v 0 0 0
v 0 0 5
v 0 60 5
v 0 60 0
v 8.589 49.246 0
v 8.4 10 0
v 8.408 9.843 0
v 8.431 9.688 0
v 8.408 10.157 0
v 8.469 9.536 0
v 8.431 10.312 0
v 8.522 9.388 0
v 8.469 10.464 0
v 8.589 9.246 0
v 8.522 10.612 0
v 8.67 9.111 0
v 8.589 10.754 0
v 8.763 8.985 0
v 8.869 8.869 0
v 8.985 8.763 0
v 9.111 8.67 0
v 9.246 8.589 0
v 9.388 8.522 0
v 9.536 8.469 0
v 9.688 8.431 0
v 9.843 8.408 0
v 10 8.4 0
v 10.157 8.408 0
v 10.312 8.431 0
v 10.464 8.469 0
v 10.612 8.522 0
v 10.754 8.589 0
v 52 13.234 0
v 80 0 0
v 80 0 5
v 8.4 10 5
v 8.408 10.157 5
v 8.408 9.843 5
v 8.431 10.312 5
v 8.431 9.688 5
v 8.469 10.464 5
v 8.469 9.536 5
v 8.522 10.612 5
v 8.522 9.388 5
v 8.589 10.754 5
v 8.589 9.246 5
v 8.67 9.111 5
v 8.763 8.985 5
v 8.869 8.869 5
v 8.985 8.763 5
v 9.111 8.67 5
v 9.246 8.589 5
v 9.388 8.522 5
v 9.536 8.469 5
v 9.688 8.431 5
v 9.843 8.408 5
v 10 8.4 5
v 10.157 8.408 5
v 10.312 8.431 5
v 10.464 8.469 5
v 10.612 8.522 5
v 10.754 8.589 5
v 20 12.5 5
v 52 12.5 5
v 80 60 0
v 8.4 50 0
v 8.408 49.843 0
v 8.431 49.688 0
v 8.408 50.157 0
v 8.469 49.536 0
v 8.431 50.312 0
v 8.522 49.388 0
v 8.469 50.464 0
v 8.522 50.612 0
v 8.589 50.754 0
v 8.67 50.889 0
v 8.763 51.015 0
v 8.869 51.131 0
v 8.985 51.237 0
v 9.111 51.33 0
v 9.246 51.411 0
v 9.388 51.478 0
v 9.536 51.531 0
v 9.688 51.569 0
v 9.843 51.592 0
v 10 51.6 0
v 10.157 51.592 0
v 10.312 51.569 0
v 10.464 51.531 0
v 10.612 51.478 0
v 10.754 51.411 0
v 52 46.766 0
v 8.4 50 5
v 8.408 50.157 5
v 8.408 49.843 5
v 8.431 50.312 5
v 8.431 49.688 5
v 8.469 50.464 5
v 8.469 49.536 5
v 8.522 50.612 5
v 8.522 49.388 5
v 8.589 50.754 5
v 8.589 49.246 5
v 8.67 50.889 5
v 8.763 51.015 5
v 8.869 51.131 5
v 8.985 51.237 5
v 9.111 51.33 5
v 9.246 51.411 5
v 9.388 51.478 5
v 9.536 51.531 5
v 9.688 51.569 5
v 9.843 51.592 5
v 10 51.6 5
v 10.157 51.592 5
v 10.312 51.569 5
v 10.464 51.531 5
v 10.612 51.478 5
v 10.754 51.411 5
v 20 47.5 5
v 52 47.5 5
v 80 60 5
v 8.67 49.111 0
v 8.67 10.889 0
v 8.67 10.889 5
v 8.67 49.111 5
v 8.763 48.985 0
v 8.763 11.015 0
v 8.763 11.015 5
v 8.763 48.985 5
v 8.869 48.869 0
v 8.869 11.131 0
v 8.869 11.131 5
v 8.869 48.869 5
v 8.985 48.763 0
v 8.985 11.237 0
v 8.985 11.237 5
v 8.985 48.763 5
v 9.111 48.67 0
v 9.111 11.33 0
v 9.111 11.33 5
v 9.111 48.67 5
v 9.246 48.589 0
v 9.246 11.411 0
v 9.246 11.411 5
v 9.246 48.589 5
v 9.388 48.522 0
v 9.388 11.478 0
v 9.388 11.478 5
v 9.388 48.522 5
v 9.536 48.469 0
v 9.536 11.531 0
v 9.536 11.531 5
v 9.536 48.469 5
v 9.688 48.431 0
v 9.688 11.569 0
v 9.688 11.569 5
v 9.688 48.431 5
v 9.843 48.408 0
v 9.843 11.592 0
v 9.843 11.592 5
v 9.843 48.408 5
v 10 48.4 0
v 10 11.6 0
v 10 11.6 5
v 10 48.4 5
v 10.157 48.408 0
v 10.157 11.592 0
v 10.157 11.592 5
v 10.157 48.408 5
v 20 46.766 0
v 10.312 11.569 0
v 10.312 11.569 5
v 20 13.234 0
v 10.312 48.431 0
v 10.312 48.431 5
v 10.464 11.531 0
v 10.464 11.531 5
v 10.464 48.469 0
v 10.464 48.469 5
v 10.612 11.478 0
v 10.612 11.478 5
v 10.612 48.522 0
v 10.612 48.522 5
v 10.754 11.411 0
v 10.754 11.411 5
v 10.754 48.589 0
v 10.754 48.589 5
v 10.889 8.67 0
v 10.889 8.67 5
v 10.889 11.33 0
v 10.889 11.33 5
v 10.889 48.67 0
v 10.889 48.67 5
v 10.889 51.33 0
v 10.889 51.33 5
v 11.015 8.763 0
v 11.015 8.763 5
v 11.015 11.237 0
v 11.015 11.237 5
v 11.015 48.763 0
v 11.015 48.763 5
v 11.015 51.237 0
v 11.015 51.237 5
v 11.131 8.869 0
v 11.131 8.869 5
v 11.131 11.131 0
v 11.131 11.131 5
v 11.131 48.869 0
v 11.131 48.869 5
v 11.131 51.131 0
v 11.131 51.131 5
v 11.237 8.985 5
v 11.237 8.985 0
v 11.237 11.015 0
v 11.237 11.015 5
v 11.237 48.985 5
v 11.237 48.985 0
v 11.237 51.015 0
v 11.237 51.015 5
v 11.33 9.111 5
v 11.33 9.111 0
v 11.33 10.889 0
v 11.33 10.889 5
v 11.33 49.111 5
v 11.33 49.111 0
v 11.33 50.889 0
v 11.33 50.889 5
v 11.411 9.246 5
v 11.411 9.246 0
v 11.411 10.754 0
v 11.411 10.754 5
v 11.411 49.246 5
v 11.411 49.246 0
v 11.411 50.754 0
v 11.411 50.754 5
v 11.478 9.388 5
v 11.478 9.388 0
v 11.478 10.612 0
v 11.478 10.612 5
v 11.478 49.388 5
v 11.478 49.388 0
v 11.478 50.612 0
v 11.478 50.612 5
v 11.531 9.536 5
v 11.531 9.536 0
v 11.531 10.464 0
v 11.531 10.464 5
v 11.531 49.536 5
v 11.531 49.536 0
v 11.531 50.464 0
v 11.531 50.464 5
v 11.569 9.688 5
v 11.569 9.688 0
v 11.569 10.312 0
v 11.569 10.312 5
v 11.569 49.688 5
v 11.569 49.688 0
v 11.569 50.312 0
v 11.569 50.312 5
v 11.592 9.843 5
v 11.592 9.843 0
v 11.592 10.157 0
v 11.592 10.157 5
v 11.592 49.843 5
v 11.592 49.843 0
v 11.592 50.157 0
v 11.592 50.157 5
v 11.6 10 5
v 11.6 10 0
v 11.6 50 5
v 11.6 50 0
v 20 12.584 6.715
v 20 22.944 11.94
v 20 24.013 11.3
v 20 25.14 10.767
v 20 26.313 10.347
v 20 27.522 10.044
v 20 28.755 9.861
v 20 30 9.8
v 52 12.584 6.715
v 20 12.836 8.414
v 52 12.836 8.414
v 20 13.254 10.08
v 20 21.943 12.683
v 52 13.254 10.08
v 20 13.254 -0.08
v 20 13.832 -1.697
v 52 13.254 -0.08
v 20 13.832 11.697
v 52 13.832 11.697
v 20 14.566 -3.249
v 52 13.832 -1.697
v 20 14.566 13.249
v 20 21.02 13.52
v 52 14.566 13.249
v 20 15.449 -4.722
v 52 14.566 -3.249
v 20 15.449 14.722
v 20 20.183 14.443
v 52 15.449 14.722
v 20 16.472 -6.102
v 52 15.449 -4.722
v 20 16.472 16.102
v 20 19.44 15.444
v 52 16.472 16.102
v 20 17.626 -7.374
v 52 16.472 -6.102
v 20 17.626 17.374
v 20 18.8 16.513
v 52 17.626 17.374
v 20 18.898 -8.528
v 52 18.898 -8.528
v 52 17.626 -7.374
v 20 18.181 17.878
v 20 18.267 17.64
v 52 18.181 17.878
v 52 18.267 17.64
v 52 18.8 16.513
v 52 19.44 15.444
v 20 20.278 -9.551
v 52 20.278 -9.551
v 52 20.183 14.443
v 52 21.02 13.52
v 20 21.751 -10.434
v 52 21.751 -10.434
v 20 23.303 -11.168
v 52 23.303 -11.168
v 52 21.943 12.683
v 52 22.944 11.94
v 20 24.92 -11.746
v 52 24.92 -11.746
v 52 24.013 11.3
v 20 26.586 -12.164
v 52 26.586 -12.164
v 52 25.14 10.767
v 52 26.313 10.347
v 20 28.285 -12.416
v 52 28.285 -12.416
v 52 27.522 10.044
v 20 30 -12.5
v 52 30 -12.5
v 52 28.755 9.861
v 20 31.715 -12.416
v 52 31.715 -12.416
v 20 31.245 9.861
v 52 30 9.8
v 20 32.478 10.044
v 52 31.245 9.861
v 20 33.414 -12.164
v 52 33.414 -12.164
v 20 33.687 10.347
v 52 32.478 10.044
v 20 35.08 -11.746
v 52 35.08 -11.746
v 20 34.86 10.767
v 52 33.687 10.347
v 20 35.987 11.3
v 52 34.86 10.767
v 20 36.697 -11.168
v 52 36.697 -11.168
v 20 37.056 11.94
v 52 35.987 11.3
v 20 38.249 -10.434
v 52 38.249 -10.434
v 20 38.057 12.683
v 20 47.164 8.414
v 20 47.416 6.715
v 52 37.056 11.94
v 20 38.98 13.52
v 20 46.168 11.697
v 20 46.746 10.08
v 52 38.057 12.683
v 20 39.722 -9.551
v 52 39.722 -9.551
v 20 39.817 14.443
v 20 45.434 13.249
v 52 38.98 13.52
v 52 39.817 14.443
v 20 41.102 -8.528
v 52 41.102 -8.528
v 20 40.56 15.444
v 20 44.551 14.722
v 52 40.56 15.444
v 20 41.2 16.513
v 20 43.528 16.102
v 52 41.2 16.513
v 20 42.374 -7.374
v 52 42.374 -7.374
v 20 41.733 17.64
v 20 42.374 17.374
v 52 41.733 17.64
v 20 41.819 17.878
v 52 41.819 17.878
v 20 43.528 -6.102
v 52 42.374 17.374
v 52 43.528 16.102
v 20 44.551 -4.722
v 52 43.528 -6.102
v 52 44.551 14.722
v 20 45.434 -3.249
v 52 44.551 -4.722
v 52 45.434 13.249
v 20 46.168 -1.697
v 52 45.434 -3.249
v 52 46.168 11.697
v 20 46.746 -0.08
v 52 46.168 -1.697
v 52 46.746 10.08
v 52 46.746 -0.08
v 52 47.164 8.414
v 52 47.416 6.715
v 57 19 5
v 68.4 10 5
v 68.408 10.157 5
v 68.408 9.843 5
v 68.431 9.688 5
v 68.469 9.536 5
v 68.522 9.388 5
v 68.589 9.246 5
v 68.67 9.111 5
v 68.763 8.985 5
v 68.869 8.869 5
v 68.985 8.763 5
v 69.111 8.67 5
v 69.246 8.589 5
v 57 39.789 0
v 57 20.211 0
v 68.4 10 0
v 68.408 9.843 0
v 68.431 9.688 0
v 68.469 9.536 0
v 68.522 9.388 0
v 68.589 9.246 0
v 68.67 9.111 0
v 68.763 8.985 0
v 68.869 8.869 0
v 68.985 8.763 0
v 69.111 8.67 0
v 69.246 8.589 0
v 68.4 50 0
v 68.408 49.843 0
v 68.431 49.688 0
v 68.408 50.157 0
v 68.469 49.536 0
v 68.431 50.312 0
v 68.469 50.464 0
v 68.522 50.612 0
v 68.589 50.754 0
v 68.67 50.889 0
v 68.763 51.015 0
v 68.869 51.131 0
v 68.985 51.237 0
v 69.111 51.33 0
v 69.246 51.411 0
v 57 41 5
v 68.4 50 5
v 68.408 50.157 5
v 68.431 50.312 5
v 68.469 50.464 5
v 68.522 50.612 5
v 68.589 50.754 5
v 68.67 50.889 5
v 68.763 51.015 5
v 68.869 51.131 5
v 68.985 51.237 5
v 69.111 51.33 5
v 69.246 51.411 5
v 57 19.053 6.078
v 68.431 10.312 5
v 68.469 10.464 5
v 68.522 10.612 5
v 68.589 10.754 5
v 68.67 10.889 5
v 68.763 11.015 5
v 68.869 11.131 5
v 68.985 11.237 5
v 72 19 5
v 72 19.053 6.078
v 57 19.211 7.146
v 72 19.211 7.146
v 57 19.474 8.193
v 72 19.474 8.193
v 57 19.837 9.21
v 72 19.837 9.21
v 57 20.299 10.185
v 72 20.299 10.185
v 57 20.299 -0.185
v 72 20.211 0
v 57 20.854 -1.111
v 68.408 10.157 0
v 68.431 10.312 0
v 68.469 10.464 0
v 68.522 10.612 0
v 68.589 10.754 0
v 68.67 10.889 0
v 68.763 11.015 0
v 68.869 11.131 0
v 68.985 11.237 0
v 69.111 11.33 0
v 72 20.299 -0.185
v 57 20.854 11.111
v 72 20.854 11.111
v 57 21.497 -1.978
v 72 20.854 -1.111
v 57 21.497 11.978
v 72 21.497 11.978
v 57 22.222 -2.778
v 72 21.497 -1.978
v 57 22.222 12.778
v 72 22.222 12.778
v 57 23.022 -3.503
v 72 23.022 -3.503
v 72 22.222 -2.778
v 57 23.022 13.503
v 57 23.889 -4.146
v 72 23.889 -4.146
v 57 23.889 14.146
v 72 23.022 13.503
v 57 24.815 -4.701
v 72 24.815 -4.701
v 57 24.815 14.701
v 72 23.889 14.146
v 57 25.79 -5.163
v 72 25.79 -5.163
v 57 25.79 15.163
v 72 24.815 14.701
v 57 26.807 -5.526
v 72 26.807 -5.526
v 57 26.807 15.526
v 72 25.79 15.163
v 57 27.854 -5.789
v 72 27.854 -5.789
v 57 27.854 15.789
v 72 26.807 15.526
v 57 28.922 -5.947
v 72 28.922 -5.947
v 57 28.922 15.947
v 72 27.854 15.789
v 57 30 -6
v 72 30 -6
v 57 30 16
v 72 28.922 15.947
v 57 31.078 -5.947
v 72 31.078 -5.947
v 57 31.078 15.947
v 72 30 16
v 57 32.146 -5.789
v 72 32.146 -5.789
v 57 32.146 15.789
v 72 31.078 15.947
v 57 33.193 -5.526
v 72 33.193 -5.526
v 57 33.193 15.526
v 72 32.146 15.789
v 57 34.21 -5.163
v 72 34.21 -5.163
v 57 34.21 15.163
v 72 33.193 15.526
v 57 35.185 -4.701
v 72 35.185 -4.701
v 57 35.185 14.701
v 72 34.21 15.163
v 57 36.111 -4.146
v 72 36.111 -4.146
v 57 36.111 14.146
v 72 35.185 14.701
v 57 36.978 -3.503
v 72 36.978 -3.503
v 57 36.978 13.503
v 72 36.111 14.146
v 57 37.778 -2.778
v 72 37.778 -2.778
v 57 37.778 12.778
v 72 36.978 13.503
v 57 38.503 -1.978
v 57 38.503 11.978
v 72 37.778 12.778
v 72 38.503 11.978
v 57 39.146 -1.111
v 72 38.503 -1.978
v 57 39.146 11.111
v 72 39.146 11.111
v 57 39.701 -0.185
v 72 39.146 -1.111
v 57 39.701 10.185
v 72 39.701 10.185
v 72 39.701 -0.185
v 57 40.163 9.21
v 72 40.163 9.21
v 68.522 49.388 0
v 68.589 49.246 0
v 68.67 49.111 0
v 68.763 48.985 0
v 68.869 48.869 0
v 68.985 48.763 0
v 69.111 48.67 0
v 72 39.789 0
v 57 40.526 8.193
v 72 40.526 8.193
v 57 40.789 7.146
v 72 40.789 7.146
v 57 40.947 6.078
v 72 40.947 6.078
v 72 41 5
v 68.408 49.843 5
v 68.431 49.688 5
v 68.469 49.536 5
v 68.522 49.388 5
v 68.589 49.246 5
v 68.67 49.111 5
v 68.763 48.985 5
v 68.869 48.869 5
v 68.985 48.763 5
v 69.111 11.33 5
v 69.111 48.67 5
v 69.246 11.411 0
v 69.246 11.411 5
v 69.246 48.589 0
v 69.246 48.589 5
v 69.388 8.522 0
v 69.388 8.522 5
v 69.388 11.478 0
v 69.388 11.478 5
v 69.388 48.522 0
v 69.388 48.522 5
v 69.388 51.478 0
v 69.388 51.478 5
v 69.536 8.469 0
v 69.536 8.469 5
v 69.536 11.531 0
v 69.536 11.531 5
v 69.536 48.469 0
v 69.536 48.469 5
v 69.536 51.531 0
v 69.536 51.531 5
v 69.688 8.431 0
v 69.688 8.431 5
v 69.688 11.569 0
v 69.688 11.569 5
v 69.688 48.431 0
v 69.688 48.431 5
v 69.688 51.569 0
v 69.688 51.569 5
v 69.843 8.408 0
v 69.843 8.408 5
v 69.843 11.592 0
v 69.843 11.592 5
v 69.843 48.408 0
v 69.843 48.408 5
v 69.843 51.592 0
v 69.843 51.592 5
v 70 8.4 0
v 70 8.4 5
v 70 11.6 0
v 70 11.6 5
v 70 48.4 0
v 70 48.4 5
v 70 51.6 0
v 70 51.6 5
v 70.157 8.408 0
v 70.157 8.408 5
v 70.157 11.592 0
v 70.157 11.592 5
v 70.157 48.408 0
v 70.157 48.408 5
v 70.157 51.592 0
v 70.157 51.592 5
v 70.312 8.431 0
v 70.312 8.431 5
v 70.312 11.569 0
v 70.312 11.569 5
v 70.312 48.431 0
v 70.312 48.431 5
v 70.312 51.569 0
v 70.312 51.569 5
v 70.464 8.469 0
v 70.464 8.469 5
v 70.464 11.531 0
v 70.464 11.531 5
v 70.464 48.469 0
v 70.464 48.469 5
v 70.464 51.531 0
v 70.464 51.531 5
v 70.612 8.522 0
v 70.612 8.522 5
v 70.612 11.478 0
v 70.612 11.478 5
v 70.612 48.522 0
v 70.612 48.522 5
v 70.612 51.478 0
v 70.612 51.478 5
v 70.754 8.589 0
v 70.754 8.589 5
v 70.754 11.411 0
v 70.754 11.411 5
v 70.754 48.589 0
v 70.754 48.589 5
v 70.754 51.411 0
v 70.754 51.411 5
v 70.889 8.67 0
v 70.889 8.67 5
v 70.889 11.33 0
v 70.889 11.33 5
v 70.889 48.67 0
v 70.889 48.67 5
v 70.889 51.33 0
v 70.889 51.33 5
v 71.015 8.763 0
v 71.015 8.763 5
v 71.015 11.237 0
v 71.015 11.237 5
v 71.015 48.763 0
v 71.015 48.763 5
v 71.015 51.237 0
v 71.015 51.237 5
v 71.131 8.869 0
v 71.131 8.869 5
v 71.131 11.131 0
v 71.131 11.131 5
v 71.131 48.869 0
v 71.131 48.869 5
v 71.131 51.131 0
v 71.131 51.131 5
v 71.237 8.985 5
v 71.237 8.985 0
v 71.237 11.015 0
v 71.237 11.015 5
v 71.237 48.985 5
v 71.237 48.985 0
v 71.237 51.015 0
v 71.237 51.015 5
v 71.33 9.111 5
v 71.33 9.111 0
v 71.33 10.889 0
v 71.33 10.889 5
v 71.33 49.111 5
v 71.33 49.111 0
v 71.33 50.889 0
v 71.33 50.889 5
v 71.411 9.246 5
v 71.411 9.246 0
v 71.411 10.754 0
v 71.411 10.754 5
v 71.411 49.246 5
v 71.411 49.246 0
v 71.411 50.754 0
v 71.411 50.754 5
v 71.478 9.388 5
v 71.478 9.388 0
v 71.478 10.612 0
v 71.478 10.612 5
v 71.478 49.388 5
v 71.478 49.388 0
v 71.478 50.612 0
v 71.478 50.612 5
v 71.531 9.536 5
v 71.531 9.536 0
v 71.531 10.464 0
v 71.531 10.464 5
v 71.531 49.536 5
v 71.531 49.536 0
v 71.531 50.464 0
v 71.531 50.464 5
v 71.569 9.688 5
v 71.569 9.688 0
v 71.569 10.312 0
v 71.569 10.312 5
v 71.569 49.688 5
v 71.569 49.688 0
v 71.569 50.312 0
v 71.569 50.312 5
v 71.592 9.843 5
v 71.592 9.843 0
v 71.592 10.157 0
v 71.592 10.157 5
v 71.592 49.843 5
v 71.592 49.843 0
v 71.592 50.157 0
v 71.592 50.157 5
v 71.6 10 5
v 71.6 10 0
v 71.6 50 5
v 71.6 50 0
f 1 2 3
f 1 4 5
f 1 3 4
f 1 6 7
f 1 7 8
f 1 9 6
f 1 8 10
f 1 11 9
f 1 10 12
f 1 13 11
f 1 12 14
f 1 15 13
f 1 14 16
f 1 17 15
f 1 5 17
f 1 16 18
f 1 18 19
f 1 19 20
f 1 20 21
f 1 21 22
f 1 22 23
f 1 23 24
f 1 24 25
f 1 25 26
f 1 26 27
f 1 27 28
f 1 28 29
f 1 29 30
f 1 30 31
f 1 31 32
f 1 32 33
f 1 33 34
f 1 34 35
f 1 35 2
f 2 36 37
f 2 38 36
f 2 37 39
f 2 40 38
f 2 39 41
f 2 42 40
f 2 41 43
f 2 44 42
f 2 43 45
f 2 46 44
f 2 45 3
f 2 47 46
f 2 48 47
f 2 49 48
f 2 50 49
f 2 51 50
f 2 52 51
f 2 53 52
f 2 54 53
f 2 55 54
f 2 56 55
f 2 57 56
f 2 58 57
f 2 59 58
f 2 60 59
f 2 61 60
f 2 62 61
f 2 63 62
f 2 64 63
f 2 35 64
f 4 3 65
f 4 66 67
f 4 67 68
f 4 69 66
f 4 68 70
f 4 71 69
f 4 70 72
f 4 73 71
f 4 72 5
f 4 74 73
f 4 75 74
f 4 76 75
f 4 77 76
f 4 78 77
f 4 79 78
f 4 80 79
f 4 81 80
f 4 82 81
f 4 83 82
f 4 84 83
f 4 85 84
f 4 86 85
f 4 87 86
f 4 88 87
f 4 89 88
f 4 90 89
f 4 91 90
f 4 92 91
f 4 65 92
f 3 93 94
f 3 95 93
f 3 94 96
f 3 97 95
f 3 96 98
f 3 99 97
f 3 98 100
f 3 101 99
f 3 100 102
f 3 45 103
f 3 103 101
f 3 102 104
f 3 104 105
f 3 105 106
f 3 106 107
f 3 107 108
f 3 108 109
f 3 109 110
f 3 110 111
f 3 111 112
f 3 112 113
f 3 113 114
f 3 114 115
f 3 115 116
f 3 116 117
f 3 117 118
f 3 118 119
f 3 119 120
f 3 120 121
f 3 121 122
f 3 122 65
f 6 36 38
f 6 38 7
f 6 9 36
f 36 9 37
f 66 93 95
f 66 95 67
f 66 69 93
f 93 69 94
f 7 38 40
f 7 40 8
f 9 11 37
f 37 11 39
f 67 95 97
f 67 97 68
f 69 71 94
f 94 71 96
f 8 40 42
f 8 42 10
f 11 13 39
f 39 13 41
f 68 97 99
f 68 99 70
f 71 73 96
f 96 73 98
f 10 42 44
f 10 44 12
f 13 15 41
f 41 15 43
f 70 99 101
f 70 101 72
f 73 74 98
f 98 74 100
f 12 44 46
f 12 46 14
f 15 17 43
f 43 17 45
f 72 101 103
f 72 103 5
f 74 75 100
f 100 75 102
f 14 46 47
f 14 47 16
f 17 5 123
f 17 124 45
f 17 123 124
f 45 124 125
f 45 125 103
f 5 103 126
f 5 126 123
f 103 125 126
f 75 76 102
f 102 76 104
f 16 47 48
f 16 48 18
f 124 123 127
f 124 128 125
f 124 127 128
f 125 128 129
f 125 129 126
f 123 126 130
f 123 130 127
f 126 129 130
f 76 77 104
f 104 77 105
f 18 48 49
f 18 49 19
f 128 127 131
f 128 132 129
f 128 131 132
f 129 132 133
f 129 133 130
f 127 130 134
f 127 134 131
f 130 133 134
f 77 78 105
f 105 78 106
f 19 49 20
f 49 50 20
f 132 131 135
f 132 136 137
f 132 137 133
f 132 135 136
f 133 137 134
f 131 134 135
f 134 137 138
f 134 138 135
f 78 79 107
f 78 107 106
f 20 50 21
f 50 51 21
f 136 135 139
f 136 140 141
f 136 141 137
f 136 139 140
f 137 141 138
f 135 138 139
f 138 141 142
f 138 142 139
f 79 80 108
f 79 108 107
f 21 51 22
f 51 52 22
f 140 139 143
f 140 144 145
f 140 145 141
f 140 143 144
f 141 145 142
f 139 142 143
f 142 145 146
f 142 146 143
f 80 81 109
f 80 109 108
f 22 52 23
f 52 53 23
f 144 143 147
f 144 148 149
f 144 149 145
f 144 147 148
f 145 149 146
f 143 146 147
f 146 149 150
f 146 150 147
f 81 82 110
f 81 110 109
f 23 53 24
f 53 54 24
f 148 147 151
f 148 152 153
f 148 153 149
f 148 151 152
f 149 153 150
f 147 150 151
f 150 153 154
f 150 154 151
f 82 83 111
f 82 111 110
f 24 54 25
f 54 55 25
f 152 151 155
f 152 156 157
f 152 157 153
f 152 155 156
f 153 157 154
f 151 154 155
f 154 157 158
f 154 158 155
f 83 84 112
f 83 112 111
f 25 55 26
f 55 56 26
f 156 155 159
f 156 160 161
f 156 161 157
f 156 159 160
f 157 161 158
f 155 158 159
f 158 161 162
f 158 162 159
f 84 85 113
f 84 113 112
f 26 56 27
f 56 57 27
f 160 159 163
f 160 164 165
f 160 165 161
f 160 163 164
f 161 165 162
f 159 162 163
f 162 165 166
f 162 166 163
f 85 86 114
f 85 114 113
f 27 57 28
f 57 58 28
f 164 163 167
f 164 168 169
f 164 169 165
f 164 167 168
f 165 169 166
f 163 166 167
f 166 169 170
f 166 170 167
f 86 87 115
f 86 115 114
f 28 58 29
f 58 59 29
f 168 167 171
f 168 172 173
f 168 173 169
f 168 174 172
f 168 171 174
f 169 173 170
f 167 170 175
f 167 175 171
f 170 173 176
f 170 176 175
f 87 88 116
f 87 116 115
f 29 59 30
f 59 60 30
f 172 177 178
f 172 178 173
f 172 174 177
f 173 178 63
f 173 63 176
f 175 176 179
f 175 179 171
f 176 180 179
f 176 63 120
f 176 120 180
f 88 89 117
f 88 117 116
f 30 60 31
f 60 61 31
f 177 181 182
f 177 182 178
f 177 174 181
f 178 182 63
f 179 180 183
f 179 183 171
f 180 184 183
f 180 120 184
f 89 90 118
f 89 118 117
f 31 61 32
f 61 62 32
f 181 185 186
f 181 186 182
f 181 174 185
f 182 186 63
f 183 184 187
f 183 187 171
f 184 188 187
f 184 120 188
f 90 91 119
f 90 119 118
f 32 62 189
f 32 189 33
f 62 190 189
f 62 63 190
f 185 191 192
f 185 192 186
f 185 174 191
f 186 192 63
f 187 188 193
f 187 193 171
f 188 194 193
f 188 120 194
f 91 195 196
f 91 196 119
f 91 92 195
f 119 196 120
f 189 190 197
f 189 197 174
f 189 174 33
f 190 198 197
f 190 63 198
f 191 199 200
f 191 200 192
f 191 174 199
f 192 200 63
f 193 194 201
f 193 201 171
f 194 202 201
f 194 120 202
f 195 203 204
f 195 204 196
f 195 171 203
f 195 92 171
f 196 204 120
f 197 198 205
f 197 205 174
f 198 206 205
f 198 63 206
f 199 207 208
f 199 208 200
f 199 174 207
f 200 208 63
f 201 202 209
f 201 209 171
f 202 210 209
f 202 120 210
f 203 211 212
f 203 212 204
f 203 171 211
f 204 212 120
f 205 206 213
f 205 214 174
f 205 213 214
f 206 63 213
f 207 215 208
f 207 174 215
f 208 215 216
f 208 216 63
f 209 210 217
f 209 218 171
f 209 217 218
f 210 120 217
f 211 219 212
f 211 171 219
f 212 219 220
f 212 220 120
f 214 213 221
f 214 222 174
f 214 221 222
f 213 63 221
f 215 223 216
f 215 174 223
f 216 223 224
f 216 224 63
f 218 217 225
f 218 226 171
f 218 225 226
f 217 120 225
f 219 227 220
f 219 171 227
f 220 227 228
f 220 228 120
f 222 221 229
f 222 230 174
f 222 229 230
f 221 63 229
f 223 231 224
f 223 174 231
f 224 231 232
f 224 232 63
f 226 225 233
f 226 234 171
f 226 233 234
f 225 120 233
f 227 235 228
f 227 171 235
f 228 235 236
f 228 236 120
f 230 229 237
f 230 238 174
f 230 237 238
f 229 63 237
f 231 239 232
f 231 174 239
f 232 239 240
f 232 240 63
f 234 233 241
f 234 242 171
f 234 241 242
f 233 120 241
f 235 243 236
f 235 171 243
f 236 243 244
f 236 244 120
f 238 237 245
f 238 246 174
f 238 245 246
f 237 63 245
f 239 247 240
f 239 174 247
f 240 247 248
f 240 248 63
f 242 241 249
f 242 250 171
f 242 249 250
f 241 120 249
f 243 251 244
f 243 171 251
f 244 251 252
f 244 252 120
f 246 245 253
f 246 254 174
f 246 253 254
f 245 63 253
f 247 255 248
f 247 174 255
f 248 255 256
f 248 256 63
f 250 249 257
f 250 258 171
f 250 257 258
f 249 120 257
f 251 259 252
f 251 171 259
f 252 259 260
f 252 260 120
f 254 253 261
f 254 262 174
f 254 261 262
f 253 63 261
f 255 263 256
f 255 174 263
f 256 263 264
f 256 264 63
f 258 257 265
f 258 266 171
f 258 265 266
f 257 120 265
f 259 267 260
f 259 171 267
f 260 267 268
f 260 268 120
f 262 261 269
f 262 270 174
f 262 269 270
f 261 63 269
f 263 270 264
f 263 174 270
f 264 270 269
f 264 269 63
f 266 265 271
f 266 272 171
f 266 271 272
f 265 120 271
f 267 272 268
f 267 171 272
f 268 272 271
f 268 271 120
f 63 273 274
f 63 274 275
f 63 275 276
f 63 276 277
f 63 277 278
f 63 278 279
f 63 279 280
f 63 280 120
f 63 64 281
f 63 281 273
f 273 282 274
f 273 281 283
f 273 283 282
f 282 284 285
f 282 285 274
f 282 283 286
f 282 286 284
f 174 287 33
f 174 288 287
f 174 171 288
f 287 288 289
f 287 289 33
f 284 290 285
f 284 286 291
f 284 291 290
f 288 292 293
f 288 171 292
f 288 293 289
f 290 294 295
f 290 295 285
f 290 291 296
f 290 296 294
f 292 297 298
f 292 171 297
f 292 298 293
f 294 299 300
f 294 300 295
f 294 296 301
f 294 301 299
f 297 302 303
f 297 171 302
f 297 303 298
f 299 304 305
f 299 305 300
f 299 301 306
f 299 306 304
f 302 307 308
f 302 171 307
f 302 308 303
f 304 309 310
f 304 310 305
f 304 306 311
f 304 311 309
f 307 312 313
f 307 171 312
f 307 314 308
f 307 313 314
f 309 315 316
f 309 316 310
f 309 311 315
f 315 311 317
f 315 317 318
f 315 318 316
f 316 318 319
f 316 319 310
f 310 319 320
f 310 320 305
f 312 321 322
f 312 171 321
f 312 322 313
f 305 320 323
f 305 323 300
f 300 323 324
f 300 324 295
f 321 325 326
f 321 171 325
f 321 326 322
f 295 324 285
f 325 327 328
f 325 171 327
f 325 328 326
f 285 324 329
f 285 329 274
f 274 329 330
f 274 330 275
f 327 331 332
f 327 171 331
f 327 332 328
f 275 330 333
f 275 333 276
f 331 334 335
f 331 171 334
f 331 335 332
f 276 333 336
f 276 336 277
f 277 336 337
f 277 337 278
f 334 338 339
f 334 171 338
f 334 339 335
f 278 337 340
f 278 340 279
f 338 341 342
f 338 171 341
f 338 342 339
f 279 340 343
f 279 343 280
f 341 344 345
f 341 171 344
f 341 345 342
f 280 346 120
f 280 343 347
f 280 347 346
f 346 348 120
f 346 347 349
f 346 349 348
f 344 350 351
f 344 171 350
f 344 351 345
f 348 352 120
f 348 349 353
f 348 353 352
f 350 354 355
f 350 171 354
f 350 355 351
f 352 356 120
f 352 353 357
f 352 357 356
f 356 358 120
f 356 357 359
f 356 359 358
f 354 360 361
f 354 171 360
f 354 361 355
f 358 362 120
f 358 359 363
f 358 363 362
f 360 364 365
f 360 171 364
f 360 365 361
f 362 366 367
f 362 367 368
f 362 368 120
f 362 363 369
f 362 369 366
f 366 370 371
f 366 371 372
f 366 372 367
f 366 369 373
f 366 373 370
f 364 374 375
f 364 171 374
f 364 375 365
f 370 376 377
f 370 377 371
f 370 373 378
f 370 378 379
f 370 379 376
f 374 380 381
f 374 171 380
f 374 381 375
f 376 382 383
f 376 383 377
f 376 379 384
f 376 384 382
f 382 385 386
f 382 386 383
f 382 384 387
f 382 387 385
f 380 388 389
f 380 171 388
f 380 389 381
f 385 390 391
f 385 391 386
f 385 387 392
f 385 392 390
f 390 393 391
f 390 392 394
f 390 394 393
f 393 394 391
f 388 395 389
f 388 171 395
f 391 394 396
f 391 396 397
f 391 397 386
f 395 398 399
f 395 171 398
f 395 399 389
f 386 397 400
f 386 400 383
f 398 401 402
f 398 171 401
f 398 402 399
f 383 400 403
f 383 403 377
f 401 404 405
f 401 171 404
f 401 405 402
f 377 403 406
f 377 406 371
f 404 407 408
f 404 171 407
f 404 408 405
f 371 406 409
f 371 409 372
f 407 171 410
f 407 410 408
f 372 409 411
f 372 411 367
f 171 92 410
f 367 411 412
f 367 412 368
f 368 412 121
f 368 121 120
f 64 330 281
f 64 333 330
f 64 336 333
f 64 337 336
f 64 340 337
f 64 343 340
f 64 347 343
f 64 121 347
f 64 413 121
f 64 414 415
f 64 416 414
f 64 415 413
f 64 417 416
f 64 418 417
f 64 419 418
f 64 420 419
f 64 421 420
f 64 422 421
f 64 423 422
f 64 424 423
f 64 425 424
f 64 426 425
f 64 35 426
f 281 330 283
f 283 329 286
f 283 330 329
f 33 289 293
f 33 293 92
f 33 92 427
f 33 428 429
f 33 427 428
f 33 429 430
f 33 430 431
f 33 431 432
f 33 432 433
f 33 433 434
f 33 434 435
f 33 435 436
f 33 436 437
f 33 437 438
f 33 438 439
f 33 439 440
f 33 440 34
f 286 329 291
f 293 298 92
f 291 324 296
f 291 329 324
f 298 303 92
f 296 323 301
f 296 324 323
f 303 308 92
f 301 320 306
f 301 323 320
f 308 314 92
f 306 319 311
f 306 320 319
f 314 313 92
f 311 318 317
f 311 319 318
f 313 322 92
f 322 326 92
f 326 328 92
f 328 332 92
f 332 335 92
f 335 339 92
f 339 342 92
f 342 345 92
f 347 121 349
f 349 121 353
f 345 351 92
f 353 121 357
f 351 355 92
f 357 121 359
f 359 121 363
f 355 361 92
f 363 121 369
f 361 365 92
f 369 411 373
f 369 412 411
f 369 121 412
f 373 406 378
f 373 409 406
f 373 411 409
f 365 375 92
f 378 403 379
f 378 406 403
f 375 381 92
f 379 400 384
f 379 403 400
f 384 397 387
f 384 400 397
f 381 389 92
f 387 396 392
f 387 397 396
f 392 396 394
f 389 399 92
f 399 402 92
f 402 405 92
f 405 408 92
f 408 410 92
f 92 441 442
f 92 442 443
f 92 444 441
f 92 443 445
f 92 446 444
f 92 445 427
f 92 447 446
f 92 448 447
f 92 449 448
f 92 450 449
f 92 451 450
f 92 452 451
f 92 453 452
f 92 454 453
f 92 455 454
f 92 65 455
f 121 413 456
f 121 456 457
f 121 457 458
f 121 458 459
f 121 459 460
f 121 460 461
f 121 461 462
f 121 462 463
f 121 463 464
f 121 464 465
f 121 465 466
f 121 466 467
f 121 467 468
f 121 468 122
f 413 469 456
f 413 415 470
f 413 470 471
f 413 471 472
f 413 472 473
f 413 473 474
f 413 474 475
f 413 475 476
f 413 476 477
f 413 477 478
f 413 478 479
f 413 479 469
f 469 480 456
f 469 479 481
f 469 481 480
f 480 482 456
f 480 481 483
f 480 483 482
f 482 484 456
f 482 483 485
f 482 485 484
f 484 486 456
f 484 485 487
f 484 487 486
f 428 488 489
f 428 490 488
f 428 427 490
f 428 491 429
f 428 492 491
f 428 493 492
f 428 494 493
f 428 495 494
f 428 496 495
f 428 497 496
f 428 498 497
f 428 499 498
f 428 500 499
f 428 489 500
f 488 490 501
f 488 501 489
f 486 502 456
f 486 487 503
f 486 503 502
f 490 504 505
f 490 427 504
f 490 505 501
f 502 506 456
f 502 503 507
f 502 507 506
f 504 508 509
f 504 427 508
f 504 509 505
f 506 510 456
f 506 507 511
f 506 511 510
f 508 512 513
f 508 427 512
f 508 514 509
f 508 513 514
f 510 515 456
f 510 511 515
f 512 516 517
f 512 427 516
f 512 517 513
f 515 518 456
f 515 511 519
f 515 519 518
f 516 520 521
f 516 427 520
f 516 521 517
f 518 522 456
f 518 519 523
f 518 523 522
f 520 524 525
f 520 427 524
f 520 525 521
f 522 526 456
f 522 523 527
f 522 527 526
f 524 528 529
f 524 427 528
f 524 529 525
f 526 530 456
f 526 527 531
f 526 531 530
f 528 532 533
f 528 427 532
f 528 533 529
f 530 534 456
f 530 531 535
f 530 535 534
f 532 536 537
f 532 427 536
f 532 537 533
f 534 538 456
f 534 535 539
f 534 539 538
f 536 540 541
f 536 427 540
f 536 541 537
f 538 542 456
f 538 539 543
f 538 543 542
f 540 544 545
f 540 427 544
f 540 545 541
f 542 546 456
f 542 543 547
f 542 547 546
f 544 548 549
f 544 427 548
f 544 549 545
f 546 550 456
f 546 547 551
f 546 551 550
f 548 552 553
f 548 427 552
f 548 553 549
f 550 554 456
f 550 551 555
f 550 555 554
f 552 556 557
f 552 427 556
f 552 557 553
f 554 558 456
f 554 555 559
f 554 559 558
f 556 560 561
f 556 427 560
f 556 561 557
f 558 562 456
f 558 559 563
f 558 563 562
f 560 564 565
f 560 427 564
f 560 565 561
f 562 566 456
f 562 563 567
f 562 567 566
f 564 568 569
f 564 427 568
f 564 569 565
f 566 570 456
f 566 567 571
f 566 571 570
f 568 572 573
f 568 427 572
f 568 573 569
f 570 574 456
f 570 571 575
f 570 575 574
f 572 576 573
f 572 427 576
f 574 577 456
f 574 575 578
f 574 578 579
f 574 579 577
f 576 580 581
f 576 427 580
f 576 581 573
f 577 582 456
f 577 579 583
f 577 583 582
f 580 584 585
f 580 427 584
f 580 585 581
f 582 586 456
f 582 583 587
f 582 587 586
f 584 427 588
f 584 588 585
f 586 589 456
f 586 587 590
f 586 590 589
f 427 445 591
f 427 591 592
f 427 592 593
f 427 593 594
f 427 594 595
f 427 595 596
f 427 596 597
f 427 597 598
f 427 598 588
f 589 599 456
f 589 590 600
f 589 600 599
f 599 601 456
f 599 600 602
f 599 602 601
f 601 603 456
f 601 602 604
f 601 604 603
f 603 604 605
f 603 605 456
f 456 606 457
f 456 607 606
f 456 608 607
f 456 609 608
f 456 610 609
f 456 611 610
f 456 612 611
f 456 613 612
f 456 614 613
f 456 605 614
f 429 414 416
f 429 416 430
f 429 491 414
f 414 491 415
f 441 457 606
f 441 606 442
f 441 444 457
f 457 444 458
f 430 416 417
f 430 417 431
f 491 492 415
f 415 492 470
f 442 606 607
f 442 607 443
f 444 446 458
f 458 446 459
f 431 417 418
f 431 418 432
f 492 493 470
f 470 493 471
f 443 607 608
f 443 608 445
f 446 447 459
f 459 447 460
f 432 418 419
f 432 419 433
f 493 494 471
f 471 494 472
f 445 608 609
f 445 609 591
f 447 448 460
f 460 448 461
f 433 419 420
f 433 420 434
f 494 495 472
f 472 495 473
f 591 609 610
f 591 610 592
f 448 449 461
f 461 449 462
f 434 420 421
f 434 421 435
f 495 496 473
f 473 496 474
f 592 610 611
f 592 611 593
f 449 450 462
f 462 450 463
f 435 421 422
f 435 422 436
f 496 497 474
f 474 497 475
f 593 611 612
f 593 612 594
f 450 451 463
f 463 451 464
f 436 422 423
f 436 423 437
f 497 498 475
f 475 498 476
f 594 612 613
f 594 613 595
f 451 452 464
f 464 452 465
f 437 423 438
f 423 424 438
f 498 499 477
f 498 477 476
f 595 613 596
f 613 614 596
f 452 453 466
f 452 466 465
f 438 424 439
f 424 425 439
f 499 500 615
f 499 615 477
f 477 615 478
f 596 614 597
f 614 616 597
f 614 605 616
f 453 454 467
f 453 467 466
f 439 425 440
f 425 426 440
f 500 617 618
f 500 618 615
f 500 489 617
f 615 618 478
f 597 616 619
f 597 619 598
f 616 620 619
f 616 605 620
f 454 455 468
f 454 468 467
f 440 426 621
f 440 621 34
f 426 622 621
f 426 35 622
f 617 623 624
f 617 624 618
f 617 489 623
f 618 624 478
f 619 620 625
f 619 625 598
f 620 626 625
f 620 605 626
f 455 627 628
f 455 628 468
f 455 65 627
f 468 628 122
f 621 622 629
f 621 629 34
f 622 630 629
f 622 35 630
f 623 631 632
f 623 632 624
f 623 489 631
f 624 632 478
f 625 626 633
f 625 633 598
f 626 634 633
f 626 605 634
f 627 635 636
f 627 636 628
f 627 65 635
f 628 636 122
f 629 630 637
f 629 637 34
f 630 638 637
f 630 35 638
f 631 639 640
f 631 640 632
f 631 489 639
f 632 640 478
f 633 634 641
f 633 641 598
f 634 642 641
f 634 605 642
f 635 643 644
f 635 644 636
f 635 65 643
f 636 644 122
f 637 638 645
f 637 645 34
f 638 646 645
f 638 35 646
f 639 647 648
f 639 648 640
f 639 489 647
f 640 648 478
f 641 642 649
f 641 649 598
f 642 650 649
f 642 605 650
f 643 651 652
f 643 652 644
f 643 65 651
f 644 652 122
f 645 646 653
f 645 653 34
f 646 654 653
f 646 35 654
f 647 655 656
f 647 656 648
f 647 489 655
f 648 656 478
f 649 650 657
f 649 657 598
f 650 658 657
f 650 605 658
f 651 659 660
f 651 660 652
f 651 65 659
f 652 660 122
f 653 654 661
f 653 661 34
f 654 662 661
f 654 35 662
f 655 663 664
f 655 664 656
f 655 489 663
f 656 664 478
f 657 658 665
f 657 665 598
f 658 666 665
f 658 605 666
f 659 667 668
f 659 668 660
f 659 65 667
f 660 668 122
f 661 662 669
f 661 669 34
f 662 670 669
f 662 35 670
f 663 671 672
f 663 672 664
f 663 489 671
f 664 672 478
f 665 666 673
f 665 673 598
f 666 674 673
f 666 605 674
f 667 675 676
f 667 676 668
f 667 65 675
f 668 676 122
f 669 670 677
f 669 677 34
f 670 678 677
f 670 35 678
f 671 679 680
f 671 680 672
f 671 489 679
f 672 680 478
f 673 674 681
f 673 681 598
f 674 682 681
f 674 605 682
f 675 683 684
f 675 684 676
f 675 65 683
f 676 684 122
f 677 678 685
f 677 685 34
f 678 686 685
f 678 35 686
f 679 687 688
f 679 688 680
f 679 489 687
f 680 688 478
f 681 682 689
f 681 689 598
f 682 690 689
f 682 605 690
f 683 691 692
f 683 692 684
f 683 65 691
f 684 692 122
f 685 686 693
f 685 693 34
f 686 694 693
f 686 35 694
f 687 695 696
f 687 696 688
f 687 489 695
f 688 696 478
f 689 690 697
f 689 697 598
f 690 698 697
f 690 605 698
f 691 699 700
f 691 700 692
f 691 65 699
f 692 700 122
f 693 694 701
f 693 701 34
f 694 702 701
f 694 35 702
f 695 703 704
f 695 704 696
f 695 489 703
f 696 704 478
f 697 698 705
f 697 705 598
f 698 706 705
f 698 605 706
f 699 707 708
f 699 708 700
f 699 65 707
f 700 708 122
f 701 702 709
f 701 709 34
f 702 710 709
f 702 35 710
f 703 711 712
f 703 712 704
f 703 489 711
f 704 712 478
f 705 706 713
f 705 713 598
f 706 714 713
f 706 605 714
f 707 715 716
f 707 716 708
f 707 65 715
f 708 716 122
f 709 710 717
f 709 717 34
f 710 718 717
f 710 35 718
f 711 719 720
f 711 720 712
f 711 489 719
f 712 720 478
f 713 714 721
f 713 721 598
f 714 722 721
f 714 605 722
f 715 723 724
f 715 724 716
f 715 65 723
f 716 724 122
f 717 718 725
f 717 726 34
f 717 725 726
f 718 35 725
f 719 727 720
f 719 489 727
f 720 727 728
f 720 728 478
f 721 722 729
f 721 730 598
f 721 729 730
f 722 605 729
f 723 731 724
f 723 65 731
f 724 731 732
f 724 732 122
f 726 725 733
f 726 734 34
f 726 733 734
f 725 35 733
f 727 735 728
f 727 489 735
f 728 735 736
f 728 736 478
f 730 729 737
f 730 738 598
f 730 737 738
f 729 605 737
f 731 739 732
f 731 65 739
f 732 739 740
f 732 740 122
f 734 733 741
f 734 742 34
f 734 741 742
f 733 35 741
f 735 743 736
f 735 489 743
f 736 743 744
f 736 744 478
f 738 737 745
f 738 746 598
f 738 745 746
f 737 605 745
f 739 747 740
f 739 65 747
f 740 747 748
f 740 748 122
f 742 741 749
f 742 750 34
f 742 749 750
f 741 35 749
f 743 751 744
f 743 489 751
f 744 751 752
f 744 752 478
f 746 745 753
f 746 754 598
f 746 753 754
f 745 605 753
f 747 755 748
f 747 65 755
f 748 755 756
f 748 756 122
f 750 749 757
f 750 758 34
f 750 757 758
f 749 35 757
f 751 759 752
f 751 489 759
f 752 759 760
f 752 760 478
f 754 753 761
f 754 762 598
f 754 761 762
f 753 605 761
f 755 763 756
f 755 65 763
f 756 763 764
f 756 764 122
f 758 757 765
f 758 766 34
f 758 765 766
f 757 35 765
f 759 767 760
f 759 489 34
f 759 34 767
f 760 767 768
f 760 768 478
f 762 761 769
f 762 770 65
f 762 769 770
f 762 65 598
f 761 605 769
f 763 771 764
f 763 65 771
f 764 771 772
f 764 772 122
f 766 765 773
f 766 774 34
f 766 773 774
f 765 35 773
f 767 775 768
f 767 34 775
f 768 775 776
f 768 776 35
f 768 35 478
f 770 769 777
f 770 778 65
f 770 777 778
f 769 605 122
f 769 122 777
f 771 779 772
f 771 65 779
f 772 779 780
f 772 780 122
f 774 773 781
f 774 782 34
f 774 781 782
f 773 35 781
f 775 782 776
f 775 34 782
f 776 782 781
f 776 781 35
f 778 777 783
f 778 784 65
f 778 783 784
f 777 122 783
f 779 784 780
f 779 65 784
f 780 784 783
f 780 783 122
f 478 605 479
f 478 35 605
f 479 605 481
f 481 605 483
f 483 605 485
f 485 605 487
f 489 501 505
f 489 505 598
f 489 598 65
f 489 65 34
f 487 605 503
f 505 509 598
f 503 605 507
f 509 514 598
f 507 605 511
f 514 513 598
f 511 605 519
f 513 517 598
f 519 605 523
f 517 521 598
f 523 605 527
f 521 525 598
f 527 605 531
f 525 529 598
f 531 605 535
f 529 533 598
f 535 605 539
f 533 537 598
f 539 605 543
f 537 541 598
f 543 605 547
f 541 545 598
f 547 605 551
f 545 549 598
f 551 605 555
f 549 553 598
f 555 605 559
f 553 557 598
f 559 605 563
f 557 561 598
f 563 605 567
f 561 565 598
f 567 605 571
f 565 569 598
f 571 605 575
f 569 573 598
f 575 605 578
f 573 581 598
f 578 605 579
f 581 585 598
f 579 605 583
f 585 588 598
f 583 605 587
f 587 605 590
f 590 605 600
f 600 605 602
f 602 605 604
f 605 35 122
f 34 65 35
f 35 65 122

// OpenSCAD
// file: 00_common.scad
// vertical-lift-bridge :: COMMON PARAMETERS
// All dimensions in millimetres. Imported by every part file.
// Ratified parameters from audit Q1–Q7. Do not edit without group approval.

// ==== BUILD VOLUME ====
PRINTER_X = 220;
PRINTER_Y = 220;
PRINTER_Z = 250;
$fn = 64;  // smoothness for production prints

// ==== OVERALL FOOTPRINT ====
FOOTPRINT_X = 1200;        // along the road / cable axis
FOOTPRINT_Y = 600;         // across the river
BASE_T      = 6;           // base panel thickness
WATERWAY_W  = 200;         // navigable channel width

// ==== TOWERS ====
TOWER_H        = 350;       // total height (split-printed in 2 sections)
TOWER_SPLIT    = 175;       // join height
TOWER_W        = 90;        // width
TOWER_D        = 60;        // depth
TOWER_WALL     = 4;         // wall thickness
TOWER_INNER_W  = TOWER_W - 2*TOWER_WALL;
TOWER_INNER_D  = TOWER_D - 2*TOWER_WALL;
TOWER_SPACING  = 800;       // tower-to-tower centre distance

// ==== DECK ====
DECK_L  = 200;              // along the road
DECK_W  = 120;              // across the road
DECK_T  = 6;                // thickness
DECK_LIFT = 180;            // vertical travel

// ==== COUNTERWEIGHT ====
CW_L  = 60;
CW_W  = 40;
CW_H  = 60;
CW_WALL = 3;
CW_NUT_POCKET_D = 14;       // M8 nut across-flats + clearance
CW_NUT_POCKET_H = 8;

// ==== PULLEY ====
PULLEY_D       = 50;
PULLEY_BORE    = 6.2;       // 6 mm shaft + 0.2 clearance
PULLEY_W       = 20;
PULLEY_GROOVE_D = 1.4;      // 1 mm cable + 0.4 clearance
PULLEY_HUB_D   = 12;
PULLEY_HUB_H   = 8;

// ==== MOTOR ====
MOTOR_BODY_D   = 25;        // JGA25-370 body
MOTOR_BODY_L   = 32;
MOTOR_GEARBOX_L = 19;
MOTOR_SHAFT_D  = 6.2;       // 6 mm shaft + 0.2 clearance
MOTOR_FLAT_W   = 5.5;
MOTOR_MOUNT_W  = 35;
MOTOR_MOUNT_T  = 5;
MOTOR_MOUNT_HOLE_D = 3.2;   // M3 clearance

// ==== CABLE GUIDE ====
CABLE_GUIDE_W = 40;
CABLE_GUIDE_D = 30;
CABLE_GUIDE_H = 25;
CABLE_GUIDE_GROOVE_R = 0.7; // half of 1.4 cable channel

// ==== ROAD BARRIER ====
BARRIER_L = 80;
BARRIER_W = 15;
BARRIER_T = 8;
BARRIER_SERVO_HORN_D = 6;

// ==== PCB ENCLOSURE ====
PCB_X = 100;
PCB_Y = 80;
PCB_T = 1.6;
ENC_WALL = 2.5;
ENC_GAP  = 0.3;
ENC_PCB_STANDOFF_H = 5;
ENC_LID_H = 8;
ENC_BASE_H = PCB_T + ENC_PCB_STANDOFF_H + 8;
ENC_OUTER_X = PCB_X + 2*(ENC_WALL + ENC_GAP);
ENC_OUTER_Y = PCB_Y + 2*(ENC_WALL + ENC_GAP);

// ==== CAMERA MOUNT (ESP32-CAM AI-Thinker) ====
CAM_BOARD_X = 40.5;
CAM_BOARD_Y = 27;
CAM_BOARD_T = 1.6;
CAM_LENS_D  = 9.5;
CAM_GANTRY_H = 220;          // height above road for FOV
CAM_TILT_DEG = 25;

// ==== TFT DISPLAY MOUNT ====
// 2.8" ILI9341 with XPT2046 — common module 86×56×4 mm with 8 mm header on one side
TFT_BOARD_X = 86;
TFT_BOARD_Y = 56;
TFT_BOARD_T = 4;
TFT_VISIBLE_X = 58;          // active area
TFT_VISIBLE_Y = 44;
TFT_TILT_DEG = 35;           // Q5 ratified — 35° tilt
TFT_BEZEL = 5;
TFT_BACK_DEPTH = 18;         // header height behind board

// ==== HARDWARE ====
M3_CLEAR  = 3.2;
M3_TAP    = 2.8;
M3_HEAD_D = 6.0;
M3_HEAD_H = 3.0;
M3_INSERT_D = 4.2;           // brass heat-set insert OD
M3_INSERT_H = 5.0;
M8_BOLT_D = 8.4;
// main file
// 07_motor_mount.scad — JGA25-370 mount with cable-drum bearing block
include <00_common.scad>

module motor_mount() {
    PLATE_X = 80;
    PLATE_Y = 60;
    PLATE_T = 5;

    difference() {
        union() {
            // base plate
            cube([PLATE_X, PLATE_Y, PLATE_T]);
            // motor cradle (full height of motor body)
            translate([20, PLATE_Y/2, PLATE_T])
                rotate([0,90,0])
                    cylinder(d=MOTOR_BODY_D + 2*MOTOR_MOUNT_T,
                             h=MOTOR_BODY_L);
            // drum bearing pillar
            translate([20 + MOTOR_BODY_L + 5, PLATE_Y/2, PLATE_T])
                rotate([0,90,0])
                    cylinder(d=22, h=15);
        }
        // motor body bore (subtract)
        translate([20 - 0.1, PLATE_Y/2, PLATE_T + (MOTOR_BODY_D + 2*MOTOR_MOUNT_T)/2])
            rotate([0,90,0])
                cylinder(d=MOTOR_BODY_D + 0.4, h=MOTOR_BODY_L + 0.2);
        // shaft pass-through
        translate([20 + MOTOR_BODY_L - 0.1, PLATE_Y/2,
                   PLATE_T + (MOTOR_BODY_D + 2*MOTOR_MOUNT_T)/2])
            rotate([0,90,0])
                cylinder(d=MOTOR_SHAFT_D + 4, h=25);
        // drum bearing bore
        translate([20 + MOTOR_BODY_L + 5 - 0.1, PLATE_Y/2,
                   PLATE_T + (MOTOR_BODY_D + 2*MOTOR_MOUNT_T)/2])
            rotate([0,90,0])
                cylinder(d=MOTOR_SHAFT_D + 0.6, h=15.2);
        // baseplate fastener holes (4× M3)
        for (x = [10, PLATE_X-10], y = [10, PLATE_Y-10])
            translate([x, y, -0.1])
                cylinder(d=M3_CLEAR, h=PLATE_T + 0.2);
    }
}

motor_mount();
